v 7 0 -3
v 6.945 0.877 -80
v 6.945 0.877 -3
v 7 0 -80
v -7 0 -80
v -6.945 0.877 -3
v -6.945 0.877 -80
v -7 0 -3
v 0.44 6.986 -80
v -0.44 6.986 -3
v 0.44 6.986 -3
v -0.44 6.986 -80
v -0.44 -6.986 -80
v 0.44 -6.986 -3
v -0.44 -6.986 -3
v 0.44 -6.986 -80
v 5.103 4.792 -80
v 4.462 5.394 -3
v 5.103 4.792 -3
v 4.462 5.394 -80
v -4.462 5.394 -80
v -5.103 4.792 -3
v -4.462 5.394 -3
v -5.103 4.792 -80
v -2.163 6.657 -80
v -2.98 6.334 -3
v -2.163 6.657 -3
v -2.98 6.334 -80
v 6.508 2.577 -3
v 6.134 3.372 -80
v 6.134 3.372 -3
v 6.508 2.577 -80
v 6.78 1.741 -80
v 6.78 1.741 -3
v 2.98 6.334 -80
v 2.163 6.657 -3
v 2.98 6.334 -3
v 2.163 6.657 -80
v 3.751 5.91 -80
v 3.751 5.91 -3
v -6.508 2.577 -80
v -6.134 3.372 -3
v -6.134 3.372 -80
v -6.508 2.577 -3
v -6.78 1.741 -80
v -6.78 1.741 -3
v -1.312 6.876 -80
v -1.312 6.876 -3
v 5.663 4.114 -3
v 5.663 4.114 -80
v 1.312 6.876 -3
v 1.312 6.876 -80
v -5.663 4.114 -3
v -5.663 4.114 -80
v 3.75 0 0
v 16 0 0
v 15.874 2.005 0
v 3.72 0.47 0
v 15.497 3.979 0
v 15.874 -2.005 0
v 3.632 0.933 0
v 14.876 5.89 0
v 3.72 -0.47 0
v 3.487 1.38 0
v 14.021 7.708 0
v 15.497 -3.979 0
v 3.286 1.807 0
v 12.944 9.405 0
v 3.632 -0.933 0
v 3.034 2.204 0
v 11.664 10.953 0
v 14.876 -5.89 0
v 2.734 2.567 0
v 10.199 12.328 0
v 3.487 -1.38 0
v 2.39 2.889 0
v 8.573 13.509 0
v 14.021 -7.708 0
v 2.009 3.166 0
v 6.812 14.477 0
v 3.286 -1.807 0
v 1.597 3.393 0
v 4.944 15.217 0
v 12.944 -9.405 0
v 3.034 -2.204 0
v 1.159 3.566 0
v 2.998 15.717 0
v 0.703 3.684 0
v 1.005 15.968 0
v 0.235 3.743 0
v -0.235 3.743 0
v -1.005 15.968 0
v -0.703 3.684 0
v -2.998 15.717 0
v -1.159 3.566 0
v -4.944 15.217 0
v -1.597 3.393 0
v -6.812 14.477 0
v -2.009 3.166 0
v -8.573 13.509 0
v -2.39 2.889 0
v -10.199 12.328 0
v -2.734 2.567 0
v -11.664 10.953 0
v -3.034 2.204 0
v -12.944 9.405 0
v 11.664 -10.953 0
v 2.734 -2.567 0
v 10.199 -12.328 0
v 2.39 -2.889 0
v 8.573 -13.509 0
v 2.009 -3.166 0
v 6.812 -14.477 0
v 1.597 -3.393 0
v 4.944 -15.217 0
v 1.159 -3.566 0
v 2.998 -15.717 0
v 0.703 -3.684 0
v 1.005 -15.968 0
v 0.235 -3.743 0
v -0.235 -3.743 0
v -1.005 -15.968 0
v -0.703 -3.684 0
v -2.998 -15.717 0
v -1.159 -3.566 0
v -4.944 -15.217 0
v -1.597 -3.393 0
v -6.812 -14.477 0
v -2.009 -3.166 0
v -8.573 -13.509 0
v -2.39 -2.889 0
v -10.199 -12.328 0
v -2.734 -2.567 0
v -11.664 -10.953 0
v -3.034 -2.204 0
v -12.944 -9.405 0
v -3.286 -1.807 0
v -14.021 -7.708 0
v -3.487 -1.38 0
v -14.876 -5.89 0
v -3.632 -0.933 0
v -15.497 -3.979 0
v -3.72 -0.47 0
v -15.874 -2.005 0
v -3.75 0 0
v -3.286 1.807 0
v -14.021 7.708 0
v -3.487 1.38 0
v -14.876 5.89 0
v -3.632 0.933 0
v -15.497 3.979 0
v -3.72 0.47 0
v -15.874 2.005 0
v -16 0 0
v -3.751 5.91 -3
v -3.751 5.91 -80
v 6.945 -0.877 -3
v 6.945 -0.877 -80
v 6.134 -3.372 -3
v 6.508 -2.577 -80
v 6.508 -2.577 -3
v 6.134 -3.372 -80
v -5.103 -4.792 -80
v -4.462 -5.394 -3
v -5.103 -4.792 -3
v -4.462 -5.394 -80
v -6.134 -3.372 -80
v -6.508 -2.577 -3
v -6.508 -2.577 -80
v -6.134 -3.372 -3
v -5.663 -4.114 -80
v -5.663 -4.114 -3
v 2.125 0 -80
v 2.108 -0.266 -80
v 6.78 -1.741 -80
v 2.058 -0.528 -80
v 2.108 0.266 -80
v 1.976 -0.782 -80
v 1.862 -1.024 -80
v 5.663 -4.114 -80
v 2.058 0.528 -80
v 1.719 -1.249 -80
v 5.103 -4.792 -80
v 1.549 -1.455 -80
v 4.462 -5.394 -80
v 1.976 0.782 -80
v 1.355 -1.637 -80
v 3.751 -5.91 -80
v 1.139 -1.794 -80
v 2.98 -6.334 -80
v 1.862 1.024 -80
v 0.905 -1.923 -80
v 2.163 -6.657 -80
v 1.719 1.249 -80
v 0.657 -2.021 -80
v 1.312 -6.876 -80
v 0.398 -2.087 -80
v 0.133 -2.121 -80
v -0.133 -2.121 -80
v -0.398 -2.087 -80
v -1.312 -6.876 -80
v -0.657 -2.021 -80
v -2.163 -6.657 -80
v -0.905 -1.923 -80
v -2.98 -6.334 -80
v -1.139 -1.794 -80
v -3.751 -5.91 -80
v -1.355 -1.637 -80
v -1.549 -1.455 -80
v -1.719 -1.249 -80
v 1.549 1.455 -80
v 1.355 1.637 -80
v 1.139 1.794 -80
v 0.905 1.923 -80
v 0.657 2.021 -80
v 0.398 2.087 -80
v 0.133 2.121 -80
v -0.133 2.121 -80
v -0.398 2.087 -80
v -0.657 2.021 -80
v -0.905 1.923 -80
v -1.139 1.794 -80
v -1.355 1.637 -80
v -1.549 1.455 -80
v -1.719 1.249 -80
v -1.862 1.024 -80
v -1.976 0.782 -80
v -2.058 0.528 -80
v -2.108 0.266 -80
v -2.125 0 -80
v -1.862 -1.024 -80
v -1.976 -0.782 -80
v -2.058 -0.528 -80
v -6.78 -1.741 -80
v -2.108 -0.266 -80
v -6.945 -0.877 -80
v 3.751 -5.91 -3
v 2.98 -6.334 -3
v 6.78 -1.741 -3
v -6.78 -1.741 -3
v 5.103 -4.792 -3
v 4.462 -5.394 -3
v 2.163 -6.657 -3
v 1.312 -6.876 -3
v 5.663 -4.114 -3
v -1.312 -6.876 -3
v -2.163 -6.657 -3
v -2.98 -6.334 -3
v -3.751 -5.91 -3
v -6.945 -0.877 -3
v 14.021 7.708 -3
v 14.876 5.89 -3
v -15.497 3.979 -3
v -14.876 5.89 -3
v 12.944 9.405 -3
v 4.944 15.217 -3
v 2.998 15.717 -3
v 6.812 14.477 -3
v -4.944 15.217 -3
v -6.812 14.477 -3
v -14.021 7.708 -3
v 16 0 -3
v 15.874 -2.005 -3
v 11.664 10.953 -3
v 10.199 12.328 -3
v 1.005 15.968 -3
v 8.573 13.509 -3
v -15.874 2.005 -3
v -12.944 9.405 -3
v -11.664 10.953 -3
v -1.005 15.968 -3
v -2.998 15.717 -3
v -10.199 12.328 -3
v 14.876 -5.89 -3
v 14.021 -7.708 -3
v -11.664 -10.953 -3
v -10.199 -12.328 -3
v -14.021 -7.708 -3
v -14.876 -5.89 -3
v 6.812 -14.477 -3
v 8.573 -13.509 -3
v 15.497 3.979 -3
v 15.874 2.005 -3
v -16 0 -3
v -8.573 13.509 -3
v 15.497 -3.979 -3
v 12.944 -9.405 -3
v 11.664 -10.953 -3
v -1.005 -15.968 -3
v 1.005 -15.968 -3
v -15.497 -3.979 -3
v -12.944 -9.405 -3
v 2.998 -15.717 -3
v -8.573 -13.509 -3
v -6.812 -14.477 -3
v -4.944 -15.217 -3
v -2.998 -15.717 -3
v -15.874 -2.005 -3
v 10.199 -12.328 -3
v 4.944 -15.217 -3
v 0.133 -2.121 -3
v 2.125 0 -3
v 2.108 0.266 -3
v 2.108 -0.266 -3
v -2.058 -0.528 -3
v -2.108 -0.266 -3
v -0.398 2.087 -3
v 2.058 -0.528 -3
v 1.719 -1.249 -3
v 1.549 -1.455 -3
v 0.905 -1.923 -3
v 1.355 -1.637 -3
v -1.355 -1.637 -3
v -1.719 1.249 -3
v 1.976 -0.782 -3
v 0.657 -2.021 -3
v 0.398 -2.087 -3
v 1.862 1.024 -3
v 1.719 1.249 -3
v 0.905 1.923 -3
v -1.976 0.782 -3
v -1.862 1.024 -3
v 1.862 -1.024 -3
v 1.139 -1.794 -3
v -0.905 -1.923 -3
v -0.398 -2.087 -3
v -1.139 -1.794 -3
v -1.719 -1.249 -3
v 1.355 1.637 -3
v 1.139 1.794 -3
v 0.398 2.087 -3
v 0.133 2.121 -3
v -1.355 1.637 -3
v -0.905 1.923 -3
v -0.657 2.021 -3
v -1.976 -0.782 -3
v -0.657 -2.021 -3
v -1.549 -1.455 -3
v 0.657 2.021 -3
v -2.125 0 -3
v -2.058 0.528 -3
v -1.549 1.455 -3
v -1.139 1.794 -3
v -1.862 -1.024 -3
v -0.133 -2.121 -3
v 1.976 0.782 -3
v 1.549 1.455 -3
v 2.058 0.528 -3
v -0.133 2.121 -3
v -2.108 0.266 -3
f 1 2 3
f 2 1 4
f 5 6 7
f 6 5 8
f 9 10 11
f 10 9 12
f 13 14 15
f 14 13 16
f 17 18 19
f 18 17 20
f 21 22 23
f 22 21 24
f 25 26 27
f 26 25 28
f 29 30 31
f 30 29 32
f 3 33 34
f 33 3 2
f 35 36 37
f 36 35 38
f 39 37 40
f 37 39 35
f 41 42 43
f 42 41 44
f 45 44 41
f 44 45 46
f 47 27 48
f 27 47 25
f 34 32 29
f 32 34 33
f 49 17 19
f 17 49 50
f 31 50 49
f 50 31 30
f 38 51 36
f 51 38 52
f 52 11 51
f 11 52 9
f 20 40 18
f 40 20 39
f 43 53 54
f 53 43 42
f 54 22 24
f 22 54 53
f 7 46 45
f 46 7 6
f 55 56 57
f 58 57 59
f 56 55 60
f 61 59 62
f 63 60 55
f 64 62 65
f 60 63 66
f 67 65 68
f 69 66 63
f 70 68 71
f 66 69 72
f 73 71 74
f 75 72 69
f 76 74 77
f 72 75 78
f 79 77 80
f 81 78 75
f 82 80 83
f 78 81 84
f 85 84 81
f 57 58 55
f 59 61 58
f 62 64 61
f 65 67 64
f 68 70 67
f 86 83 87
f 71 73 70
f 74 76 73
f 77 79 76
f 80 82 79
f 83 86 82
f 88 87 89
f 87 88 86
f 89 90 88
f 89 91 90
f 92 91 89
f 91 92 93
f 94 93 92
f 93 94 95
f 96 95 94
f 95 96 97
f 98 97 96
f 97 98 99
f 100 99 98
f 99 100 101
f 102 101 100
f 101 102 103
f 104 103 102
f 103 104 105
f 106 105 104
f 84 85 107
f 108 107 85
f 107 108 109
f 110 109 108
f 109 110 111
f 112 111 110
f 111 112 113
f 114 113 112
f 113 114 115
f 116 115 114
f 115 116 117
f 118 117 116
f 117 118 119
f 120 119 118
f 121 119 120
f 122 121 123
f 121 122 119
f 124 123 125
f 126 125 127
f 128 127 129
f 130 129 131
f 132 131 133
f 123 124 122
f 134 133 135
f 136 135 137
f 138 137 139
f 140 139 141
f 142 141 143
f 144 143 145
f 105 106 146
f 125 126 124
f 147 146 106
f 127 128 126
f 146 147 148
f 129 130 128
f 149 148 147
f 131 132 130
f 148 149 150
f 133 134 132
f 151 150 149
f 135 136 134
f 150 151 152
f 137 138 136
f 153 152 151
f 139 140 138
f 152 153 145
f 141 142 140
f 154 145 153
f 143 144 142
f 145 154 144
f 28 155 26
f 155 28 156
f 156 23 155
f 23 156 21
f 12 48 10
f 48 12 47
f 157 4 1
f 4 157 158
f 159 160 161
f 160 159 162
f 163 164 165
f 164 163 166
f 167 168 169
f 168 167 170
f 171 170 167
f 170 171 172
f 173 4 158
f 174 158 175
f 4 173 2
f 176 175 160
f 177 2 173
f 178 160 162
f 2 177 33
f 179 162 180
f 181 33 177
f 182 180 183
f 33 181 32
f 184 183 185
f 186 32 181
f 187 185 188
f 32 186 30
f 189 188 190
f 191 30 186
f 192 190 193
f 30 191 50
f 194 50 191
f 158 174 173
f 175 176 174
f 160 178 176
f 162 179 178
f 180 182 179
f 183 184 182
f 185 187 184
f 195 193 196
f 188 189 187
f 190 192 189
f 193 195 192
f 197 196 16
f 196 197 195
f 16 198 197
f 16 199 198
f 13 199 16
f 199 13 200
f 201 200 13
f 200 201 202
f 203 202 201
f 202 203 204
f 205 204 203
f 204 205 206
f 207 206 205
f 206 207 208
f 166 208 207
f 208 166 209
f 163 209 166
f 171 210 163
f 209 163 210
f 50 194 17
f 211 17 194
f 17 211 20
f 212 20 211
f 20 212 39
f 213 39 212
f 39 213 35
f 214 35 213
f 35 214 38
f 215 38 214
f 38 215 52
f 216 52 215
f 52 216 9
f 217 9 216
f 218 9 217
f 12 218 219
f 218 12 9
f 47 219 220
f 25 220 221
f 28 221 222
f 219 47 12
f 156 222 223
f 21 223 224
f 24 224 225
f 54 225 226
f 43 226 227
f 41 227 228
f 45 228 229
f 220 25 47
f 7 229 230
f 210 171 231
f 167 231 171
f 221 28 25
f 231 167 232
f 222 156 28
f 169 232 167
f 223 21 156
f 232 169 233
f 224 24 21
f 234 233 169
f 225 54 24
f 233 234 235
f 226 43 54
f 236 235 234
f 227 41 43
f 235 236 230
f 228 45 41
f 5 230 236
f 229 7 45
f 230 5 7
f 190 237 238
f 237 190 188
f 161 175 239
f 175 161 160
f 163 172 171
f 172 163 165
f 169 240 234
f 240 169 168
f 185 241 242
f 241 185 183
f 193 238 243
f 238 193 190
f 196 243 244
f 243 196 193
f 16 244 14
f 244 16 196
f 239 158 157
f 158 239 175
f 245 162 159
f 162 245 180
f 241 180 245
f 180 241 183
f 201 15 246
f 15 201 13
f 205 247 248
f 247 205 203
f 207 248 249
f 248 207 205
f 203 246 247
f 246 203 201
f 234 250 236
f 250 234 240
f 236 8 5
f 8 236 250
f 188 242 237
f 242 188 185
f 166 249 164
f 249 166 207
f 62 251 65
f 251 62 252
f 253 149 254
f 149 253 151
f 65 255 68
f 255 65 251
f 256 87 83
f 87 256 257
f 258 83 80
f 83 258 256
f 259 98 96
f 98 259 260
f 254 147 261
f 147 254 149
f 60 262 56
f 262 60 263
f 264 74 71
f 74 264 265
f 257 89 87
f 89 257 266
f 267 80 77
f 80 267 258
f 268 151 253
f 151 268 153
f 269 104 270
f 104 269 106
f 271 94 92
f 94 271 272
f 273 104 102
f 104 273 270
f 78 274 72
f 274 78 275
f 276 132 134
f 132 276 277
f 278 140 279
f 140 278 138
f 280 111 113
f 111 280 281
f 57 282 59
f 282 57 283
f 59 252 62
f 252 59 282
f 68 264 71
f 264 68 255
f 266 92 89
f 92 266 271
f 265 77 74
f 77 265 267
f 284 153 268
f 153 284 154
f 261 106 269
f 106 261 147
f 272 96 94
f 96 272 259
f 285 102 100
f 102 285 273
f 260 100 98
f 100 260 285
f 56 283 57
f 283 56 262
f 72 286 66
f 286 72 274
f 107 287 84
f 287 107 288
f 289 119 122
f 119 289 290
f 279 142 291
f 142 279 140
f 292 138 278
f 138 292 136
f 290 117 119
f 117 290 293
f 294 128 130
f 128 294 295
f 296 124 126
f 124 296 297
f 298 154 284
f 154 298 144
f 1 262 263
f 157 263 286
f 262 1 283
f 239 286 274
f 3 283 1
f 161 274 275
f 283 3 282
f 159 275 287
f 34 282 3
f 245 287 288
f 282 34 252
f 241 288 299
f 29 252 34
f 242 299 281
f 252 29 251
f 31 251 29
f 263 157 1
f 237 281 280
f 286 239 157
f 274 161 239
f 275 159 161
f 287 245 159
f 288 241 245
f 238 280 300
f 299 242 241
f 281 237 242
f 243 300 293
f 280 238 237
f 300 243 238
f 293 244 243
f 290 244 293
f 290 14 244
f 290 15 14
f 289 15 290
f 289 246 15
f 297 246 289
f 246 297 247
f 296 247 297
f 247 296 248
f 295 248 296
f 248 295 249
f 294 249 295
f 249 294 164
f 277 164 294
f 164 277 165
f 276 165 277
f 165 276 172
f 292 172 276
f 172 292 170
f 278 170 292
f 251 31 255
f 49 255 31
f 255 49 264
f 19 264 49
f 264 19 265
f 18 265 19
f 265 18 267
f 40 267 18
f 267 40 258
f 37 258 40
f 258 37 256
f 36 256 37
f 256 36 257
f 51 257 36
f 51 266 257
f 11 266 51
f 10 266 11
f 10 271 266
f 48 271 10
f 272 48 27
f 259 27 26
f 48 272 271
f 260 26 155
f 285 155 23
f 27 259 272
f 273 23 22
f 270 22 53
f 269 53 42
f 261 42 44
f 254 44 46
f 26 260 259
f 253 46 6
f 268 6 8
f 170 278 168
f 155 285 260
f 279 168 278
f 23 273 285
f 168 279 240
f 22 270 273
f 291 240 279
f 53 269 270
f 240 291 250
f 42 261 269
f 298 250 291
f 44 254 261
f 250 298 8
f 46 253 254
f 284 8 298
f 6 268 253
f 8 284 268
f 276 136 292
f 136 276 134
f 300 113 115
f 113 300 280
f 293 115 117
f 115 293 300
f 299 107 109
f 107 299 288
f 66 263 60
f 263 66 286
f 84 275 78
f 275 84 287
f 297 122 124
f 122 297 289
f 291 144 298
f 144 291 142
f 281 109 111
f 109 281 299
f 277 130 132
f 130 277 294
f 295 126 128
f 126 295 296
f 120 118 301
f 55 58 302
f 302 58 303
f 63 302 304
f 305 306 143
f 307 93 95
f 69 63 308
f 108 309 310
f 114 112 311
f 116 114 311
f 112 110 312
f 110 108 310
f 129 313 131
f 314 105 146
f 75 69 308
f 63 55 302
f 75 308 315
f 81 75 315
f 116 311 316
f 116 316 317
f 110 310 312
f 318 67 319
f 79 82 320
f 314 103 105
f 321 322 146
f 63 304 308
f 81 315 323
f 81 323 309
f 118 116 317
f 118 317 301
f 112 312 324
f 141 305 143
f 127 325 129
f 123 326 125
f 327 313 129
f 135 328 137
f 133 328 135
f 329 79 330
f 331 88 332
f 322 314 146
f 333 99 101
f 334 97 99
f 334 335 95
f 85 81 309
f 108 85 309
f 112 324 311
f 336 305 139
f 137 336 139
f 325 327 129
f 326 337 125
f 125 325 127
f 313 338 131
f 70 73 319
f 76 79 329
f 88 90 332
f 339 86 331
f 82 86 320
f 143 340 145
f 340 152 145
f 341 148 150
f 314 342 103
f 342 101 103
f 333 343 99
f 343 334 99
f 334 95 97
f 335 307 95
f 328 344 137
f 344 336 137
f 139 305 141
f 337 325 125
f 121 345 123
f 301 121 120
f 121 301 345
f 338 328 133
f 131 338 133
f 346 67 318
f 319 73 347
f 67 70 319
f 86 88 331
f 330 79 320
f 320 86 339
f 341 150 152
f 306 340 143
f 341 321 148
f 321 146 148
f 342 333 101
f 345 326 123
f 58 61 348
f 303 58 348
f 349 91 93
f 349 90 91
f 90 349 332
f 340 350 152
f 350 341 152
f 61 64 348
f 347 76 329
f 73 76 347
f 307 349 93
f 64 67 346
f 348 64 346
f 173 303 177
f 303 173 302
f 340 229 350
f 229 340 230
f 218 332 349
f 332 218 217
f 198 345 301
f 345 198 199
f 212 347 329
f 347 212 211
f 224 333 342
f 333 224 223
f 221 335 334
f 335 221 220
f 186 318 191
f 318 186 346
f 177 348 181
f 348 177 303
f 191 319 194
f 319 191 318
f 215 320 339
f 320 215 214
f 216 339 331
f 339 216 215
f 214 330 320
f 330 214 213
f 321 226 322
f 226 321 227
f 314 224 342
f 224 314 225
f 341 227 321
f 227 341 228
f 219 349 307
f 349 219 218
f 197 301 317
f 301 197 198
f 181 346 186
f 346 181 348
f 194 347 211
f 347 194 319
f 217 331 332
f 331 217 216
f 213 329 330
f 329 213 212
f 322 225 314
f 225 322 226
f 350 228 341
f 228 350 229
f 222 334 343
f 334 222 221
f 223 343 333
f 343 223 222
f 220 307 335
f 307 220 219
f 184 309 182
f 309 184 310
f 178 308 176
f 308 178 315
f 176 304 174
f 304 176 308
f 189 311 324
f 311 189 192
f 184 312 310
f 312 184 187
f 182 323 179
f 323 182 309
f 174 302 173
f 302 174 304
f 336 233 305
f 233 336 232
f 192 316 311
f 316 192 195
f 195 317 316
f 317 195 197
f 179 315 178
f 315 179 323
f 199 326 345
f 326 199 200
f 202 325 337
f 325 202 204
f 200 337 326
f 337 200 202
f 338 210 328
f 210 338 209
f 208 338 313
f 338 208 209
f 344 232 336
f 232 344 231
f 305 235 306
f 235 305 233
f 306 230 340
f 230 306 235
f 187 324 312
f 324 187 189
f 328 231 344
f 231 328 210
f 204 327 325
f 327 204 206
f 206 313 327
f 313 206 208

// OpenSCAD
$fn = 50;


difference() {
	union() {
		translate(v = [0, 0, -80.0000000000]) {
			cylinder(h = 80, r = 7.0000000000);
		}
		translate(v = [0, 0, -3.0000000000]) {
			cylinder(h = 3, r = 16.0000000000);
		}
	}
	union() {
		translate(v = [0, 0, 0]) {
			rotate(a = [0, 0, 0]) {
				difference() {
					union() {
						#translate(v = [0, 0, -80.0000000000]) {
							cylinder(h = 80, r = 2.0000000000);
						}
						#translate(v = [0, 0, -3]) {
							cylinder(h = 3, r = 7.0000000000, r1 = 2.1250000000, r2 = 3.7500000000);
						}
						#translate(v = [0, 0, -80.0000000000]) {
							cylinder(h = 80, r = 2.1250000000);
						}
						#translate(v = [0, 0, -80.0000000000]) {
							cylinder(h = 80, r = 2.0000000000);
						}
					}
					union();
				}
			}
		}
	}
}
